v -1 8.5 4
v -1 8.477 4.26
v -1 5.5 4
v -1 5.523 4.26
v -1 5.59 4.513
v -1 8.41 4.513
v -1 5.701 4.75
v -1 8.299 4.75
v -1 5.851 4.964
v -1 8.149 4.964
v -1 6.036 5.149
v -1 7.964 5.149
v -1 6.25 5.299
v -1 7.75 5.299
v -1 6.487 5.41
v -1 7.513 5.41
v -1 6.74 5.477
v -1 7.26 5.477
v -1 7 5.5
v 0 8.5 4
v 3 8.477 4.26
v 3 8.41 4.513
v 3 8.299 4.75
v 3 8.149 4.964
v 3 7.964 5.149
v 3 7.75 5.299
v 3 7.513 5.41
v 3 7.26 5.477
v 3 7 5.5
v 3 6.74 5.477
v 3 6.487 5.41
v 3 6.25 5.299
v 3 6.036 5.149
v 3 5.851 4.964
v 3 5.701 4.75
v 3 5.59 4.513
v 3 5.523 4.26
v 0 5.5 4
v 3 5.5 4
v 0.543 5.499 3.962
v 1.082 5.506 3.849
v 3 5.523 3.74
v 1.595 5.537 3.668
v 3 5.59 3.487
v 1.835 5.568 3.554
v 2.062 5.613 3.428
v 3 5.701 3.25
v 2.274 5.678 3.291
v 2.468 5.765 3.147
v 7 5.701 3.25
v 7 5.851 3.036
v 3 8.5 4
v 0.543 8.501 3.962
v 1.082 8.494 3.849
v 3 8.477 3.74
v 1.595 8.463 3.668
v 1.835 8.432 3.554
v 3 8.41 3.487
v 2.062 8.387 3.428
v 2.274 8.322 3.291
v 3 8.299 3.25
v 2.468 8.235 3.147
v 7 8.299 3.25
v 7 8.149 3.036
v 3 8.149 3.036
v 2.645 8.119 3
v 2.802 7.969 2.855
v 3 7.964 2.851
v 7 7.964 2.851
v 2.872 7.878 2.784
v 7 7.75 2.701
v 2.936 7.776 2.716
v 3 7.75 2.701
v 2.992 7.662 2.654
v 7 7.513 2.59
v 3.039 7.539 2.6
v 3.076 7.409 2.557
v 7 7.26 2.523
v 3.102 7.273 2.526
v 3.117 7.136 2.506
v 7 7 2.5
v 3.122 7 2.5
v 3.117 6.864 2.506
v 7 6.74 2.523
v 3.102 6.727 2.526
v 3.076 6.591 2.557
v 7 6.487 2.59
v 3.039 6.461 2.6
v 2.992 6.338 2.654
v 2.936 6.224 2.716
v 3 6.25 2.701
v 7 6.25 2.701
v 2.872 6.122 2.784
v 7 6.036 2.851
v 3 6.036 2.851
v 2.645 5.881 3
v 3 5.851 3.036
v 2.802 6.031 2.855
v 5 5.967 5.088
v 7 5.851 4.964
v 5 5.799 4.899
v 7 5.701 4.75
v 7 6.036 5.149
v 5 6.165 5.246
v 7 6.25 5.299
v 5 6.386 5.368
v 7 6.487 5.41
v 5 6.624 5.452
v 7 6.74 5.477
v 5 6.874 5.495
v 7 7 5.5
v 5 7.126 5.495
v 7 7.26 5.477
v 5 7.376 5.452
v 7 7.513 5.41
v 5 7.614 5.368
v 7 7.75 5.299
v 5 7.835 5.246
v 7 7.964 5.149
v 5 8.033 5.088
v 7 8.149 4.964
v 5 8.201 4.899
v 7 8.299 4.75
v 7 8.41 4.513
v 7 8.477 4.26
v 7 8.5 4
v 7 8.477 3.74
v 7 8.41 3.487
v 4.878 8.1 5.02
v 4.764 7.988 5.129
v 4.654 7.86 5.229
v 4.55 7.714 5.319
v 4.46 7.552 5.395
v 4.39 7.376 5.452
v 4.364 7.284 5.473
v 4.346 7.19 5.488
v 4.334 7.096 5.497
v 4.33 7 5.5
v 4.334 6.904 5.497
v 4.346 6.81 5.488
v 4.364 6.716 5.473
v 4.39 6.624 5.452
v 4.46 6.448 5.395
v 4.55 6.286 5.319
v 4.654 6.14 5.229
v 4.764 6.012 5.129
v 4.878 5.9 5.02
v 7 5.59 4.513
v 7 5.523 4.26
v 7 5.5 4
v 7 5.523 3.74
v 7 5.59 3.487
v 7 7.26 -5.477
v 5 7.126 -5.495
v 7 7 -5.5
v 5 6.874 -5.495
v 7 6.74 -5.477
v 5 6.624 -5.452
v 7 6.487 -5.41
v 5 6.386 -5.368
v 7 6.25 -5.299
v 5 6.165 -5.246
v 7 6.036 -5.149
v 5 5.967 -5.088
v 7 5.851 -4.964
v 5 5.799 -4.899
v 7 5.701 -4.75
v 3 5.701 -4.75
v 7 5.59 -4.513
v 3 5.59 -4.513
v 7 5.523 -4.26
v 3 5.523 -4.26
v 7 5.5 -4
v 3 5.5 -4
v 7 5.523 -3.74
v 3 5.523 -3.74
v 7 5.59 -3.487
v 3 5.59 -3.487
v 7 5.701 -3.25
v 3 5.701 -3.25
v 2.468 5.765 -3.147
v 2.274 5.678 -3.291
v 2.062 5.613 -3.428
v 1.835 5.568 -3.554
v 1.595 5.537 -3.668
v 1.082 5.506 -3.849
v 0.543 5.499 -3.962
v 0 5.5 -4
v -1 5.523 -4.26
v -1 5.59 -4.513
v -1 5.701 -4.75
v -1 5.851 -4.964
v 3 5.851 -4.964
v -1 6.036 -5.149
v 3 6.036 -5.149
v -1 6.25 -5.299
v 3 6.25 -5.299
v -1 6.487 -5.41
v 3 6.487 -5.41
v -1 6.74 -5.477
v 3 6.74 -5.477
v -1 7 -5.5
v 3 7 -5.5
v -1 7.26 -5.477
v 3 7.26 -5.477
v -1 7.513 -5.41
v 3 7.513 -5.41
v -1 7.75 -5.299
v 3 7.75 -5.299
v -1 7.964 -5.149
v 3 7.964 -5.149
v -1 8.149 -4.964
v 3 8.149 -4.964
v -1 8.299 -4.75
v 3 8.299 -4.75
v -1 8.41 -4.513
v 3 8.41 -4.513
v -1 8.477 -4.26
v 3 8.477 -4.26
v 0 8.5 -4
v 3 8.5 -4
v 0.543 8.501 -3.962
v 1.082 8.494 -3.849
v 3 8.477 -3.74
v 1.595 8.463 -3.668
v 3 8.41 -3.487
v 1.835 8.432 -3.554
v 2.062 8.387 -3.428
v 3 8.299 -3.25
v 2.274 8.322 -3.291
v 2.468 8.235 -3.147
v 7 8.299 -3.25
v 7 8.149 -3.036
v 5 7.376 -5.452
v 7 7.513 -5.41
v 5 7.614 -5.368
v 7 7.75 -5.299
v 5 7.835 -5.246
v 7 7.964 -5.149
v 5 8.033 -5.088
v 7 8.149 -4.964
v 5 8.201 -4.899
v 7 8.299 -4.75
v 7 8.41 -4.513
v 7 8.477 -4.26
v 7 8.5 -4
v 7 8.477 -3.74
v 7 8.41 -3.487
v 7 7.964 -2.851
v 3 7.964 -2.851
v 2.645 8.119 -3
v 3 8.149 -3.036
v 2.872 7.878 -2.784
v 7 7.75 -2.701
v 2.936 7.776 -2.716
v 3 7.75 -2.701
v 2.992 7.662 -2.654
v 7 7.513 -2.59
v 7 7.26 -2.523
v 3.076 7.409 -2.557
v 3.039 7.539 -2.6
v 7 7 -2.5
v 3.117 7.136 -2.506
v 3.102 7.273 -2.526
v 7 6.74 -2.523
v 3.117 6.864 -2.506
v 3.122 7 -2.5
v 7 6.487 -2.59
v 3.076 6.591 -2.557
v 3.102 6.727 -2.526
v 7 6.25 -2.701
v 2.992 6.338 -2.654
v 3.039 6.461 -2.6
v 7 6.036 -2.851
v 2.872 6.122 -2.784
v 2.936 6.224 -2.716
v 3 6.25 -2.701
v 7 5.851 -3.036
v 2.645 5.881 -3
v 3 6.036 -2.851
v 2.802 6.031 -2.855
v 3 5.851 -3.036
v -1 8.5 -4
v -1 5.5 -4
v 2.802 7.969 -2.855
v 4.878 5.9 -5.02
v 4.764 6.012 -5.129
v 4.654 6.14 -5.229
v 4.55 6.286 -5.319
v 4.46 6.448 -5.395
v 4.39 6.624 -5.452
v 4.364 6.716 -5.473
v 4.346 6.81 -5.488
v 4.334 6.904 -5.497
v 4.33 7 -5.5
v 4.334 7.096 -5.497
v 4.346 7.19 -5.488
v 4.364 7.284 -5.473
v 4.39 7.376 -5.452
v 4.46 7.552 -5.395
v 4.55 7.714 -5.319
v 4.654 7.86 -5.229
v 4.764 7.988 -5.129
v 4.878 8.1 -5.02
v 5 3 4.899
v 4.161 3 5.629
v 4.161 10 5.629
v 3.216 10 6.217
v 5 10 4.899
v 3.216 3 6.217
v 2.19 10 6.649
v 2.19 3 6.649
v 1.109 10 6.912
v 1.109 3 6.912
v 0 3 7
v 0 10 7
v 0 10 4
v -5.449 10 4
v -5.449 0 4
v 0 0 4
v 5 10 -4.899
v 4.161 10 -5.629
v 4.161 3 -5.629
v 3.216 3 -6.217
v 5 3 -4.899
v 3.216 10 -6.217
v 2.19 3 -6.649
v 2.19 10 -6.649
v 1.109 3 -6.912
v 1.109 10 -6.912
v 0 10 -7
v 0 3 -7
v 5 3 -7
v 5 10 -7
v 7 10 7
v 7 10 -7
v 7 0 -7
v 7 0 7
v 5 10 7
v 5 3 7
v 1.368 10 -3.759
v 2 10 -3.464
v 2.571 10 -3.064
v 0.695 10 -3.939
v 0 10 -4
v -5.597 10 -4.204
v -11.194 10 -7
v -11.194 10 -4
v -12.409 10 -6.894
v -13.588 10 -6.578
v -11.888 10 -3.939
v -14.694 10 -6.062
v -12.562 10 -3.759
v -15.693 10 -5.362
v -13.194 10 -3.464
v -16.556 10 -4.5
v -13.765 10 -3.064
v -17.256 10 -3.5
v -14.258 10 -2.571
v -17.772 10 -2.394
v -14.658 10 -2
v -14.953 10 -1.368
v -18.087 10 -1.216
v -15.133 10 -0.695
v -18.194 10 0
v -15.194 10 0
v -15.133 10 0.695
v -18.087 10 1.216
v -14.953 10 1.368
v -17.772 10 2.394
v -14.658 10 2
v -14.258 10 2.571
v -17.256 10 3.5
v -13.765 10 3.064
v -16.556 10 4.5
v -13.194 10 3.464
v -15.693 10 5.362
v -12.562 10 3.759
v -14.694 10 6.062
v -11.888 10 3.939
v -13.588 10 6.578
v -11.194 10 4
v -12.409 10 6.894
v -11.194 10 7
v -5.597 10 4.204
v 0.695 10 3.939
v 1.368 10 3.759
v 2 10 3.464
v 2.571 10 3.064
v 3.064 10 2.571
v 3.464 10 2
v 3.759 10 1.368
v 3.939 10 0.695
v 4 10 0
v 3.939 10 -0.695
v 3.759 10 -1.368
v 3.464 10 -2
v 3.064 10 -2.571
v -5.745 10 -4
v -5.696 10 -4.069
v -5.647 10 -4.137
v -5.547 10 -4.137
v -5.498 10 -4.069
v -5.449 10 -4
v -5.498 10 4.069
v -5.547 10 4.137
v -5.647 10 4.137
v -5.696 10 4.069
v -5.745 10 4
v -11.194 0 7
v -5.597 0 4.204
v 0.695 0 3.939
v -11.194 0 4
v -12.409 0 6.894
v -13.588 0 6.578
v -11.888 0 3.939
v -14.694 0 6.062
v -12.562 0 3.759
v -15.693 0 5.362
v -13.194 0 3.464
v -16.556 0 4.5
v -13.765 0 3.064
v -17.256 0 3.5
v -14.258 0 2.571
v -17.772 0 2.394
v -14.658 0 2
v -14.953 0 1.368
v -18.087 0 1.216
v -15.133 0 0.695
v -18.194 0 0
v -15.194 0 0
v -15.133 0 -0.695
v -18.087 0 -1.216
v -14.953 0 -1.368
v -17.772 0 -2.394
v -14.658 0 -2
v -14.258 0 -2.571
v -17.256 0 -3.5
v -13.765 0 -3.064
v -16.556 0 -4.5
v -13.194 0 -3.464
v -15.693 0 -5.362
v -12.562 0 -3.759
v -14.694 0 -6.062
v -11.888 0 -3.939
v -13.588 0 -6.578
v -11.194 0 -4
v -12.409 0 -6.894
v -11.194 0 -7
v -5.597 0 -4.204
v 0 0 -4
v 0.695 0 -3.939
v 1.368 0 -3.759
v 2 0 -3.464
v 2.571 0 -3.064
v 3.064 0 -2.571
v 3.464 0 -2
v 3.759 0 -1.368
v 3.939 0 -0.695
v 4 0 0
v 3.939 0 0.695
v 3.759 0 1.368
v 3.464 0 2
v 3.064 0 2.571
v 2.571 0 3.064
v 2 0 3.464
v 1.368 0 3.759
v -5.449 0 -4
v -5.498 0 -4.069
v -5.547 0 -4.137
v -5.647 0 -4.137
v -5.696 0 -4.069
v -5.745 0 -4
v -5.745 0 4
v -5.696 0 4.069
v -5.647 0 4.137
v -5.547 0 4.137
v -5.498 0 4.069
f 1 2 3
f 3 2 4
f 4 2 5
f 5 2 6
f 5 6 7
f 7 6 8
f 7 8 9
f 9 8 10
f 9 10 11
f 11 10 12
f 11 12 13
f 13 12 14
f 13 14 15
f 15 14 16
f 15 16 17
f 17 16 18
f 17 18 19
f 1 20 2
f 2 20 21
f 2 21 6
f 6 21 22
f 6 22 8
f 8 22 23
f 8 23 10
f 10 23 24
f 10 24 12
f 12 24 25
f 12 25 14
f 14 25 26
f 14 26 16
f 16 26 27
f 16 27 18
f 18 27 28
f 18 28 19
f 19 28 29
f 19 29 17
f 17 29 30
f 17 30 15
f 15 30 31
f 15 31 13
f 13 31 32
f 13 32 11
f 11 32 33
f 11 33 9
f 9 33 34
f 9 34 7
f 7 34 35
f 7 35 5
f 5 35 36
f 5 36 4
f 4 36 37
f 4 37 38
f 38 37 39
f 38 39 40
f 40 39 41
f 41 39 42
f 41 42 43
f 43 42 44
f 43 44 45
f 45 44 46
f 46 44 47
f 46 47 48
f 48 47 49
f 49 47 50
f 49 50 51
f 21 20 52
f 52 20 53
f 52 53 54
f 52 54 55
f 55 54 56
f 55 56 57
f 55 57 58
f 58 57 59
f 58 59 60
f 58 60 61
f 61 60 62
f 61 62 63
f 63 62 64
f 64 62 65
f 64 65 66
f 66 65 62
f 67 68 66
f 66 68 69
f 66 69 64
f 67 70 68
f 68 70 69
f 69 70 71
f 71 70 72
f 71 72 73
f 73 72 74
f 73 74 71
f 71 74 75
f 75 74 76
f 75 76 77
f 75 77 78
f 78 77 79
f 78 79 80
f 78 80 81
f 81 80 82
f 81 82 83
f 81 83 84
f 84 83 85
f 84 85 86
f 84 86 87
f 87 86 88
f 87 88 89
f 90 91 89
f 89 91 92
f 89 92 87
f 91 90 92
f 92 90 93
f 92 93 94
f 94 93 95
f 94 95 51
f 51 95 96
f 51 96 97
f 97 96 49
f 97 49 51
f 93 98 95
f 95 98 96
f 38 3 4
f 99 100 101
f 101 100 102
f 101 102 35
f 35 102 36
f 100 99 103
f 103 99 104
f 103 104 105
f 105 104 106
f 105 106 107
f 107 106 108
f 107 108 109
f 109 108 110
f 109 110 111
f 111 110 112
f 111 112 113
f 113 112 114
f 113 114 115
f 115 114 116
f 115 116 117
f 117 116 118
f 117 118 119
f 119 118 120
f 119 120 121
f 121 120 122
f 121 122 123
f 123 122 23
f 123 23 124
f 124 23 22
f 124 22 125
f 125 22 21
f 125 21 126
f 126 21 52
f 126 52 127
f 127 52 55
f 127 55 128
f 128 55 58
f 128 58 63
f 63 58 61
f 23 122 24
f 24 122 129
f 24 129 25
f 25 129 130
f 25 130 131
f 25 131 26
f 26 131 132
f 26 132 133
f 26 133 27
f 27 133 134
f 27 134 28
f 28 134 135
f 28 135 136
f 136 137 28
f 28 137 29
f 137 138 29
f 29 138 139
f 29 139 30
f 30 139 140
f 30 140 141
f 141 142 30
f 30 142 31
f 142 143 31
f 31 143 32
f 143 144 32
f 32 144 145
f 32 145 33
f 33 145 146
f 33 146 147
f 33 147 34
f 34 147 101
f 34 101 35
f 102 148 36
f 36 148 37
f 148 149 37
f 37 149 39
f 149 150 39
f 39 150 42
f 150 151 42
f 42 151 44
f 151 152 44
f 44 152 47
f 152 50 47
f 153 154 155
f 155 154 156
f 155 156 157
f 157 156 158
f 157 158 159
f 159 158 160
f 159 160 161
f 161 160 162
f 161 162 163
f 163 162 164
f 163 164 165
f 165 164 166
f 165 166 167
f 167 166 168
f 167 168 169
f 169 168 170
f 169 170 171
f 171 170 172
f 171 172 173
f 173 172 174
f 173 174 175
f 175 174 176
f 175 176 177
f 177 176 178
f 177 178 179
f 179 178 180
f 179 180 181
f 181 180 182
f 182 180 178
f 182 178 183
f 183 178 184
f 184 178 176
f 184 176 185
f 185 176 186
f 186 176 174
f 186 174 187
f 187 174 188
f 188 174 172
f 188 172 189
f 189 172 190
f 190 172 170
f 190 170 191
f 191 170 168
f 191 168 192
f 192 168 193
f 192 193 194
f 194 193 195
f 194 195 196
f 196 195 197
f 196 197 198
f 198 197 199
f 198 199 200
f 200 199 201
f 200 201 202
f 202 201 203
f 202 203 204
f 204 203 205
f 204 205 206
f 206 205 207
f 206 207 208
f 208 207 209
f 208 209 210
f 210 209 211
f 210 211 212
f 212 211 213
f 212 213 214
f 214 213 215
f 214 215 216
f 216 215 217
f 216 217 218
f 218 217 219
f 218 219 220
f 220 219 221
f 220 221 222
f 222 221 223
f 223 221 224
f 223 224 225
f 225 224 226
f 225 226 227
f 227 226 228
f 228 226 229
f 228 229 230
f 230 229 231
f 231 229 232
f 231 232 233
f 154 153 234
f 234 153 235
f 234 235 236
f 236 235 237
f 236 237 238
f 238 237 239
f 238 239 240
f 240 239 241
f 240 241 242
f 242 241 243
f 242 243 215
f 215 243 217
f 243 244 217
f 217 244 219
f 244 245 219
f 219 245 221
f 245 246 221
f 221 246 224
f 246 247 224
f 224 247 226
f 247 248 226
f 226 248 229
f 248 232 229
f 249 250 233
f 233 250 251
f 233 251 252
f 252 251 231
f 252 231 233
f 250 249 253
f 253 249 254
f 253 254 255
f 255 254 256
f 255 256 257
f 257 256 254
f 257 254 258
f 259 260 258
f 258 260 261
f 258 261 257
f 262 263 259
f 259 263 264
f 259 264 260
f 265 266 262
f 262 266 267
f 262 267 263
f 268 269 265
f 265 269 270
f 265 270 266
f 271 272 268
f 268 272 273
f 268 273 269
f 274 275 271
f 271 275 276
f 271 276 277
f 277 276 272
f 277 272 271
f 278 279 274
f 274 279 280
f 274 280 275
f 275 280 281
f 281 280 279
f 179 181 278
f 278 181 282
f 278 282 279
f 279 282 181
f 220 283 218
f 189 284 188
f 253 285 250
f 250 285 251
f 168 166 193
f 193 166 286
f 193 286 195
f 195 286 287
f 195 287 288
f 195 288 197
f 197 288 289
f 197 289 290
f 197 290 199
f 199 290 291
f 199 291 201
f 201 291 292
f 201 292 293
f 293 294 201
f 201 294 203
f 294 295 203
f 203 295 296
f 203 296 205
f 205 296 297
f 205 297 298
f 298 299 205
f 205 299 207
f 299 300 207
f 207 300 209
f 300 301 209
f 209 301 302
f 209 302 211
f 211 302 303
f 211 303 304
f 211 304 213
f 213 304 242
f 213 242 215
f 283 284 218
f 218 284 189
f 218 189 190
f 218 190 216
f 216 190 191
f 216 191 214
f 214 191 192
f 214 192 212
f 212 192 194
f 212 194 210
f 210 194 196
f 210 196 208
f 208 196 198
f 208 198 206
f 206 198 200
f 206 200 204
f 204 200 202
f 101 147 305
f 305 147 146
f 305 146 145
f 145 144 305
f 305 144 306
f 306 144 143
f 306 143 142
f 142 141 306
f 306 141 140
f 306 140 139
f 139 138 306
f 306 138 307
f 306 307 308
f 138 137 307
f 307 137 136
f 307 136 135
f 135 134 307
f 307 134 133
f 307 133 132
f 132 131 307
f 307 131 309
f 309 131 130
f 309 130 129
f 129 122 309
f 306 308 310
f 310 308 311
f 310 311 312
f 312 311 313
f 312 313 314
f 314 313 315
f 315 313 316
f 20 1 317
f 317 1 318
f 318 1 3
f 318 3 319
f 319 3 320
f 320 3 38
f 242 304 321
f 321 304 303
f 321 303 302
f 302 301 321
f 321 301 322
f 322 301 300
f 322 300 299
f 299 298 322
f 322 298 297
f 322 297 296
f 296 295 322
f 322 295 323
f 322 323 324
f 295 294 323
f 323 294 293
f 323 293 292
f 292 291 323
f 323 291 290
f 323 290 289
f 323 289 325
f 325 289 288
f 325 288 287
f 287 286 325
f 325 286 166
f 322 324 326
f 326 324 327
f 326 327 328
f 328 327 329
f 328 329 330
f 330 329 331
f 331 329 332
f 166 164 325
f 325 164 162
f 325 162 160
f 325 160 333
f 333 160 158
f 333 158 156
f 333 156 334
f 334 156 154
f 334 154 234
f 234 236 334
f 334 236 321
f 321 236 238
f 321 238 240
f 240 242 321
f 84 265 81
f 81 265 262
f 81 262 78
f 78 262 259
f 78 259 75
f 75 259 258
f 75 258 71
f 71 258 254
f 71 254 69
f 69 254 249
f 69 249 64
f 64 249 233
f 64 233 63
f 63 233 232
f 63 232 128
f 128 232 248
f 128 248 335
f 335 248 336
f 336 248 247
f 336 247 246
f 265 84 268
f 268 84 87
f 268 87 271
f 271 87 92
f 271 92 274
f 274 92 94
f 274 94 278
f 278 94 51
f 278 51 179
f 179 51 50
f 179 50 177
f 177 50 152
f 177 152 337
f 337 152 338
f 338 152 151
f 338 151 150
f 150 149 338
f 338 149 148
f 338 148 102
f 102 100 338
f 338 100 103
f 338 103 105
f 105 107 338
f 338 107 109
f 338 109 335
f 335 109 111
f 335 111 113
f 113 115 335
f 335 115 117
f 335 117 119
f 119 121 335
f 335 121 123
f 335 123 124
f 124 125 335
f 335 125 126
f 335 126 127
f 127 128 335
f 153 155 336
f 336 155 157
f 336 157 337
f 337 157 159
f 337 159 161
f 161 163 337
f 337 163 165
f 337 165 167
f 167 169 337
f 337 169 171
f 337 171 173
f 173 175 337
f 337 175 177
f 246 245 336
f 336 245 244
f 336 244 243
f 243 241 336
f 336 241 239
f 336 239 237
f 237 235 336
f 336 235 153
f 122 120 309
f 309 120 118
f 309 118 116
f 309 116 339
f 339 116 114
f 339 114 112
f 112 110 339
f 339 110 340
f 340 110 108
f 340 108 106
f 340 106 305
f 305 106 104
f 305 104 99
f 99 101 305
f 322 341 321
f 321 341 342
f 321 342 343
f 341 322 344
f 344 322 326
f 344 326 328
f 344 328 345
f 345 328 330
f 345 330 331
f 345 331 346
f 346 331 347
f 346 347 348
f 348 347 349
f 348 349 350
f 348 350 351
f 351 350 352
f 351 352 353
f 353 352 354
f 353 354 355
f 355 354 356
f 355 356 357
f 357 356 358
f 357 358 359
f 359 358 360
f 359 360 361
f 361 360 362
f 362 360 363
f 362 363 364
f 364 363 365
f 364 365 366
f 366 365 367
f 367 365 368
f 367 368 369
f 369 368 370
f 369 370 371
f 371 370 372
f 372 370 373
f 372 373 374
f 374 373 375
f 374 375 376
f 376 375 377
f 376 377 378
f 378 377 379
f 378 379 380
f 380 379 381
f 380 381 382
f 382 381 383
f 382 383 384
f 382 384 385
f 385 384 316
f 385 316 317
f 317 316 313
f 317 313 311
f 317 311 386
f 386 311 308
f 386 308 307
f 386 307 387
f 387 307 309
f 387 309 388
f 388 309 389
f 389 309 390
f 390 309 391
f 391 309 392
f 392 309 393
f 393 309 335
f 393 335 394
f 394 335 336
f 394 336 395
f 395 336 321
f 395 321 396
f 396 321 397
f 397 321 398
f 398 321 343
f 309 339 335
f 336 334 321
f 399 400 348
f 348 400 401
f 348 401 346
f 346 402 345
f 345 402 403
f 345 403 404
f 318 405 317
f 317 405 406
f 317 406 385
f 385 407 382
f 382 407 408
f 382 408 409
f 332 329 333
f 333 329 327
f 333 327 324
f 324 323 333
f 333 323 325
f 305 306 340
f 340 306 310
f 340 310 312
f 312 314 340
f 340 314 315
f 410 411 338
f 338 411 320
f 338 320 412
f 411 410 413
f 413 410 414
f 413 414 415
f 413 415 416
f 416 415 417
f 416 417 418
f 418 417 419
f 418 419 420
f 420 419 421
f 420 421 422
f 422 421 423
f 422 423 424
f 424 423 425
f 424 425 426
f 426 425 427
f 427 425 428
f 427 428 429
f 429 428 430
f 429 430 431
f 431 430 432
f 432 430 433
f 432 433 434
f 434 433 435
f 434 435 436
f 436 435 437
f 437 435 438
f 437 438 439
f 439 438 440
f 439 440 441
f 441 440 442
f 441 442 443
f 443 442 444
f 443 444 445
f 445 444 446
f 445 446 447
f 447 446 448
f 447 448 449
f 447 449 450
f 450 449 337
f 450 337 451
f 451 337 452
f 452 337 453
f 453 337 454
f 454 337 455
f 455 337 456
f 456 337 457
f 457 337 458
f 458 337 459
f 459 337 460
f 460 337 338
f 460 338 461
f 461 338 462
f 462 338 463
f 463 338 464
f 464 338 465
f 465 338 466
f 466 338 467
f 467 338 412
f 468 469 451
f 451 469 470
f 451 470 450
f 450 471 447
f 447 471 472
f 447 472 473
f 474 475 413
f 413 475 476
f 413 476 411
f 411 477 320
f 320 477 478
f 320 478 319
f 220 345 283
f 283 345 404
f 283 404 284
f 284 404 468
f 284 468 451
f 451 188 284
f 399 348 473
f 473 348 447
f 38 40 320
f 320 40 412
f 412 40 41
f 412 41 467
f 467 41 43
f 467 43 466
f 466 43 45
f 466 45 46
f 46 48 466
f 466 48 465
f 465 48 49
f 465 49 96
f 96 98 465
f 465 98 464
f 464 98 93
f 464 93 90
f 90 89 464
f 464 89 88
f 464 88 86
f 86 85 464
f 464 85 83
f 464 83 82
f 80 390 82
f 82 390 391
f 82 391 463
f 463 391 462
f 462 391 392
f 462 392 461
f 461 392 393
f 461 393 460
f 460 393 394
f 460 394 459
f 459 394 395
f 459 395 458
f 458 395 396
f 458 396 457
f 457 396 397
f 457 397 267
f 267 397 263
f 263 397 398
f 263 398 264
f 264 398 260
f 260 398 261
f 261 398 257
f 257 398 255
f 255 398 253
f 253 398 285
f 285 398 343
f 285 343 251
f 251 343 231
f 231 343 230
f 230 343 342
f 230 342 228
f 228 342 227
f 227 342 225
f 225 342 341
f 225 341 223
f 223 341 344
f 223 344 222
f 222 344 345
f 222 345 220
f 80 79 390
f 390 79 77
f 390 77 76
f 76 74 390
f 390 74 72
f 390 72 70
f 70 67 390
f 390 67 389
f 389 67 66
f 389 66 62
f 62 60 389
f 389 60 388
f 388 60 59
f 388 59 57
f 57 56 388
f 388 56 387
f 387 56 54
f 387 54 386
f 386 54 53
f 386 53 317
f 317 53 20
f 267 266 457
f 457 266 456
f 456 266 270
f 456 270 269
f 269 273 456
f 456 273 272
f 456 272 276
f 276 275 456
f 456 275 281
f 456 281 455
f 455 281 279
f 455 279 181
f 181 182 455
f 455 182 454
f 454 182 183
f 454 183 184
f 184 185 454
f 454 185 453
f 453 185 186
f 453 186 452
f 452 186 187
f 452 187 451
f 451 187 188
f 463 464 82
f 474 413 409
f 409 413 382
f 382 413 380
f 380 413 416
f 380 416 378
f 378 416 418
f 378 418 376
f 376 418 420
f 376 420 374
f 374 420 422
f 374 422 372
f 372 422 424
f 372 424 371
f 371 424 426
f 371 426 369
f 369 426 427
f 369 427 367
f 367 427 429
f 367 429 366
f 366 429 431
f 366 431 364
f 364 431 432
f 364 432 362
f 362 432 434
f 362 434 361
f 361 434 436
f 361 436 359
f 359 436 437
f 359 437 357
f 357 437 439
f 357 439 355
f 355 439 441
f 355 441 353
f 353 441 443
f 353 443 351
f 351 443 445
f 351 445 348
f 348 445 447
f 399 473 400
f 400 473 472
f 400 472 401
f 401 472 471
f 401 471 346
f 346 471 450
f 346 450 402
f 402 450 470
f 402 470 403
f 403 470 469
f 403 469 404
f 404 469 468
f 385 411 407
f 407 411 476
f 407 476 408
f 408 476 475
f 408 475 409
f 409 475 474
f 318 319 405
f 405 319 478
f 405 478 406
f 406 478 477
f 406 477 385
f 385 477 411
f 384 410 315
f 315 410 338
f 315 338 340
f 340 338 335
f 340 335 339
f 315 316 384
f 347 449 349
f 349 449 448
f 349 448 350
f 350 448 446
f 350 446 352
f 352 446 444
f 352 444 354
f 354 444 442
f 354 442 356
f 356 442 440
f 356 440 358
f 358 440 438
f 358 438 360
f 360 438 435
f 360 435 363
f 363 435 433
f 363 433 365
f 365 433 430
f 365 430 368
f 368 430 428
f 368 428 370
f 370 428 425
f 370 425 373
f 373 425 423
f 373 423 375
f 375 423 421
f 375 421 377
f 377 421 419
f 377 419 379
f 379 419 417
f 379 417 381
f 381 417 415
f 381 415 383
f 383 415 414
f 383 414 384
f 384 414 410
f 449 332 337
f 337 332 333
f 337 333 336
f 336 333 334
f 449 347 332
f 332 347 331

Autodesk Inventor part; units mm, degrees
ref_plane "YZ Plane" through (0, 0, 0) normal (1, 0, 0) x (0, 1, 0)
ref_plane "XZ Plane" through (0, 0, 0) normal (0, 1, 0) x (-1, 0, 0)
ref_plane "XY Plane" through (0, 0, 0) normal (0, 0, 1) x (1, 0, 0)
sketch "Sketch1" plane through (0, 0, 0) normal (0, 1, 0) x (-1, 0, 0)
  arc A0 (0, 4) -> (0, -4) centre (0, 0) ccw
  arc A1 (11.1938, -4) -> (11.1938, 4) centre (11.1938, 0) ccw
  line L0 (11.1938, -4) -> (0, -4)
  line L1 (11.1938, 4) -> (0, 4)
  line L2 (11.1938, -7) -> (0, -7)
  line L3 (0, 7) -> (11.1938, 7)
  arc A2 (5.5969, 4.2041) -> (5.4492, 4) centre (11.1938, 0) ccw
  arc A3 (5.7446, 4) -> (5.5969, 4.2041) centre (0, 0) ccw
  arc A4 (5.4492, -4) -> (5.5969, -4.2041) centre (11.1938, 0) ccw
  arc A5 (11.1938, -7) -> (11.1938, 7) centre (11.1938, 0) ccw
  arc A6 (0, 7) -> (0, -7) centre (0, 0) ccw
  arc A7 (5.5969, -4.2041) -> (5.7446, -4) centre (0, 0) ccw
  dimension "d0" = 8
  dimension "d1" = 8
extrude "Extrusion1" add sketch "Sketch1" along normal blind 10
sketch "Sketch2" plane through (0, 0, 0) normal (0, -1, 0) x (1, 0, 0)
  arc A0 (0, -7) -> (0, 7) centre (0, 0) ccw
  arc A1 (0, -4) -> (0, 4) centre (0, 0) ccw
  line L0 (0, -7) -> (0, -4)
  line L1 (0, 4) -> (0, 7)
  line L2 (0, -7) -> (-11.1938, -7) projected
  line L3 (0, -7) -> (5, -7)
  arc A2 (0, -7) -> (0, 7) centre (0, 0) ccw projected
  line L4 (0, 7) -> (5, 7)
  line L5 (5, 7) -> (5, -7)
  dimension "d6" = 5
extrude "Extrusion2" add sketch "Sketch2" against normal blind 3 contours L0 A1 L1 A0 L5 | A0 L5 L3 | A0 L4 L5
sketch "Sketch3" plane through (5, 0, 7) normal (1, 0, 0) x (0, 0, -1)
  line L0 (14, 10) -> (0, 10) projected
  line L1 (0, 0) -> (14, 0)
  line L2 (14, 0) -> (14, 10)
  line L3 (14, 10) -> (0, 10)
  line L4 (0, 10) -> (0, 0)
  point P0 (7, 0)
extrude "Extrusion3" add sketch "Sketch3" along normal blind 2
sketch "Sketch4" plane through (7, 0, 7) normal (1, 0, 0) x (0, 0, -1)
  circle A0 centre (3, 7) radius 1.5
  circle A1 centre (11, 7) radius 1.5
  line L0 (14, 10) -> (0, 10) projected
  line L1 (0, 10) -> (0, 0) projected
  line L2 (14, 0) -> (14, 10) projected
  point P0 (7, 0)
  dimension "d11" = 3
  dimension "d12" = 3
  dimension "d13" = 3
  dimension "d14" = 3
  dimension "d15" = 3
  dimension "d16" = 3
extrude "Extrusion4" cut sketch "Sketch4" against normal blind 8
sketch "Sketch5" plane through (0, 10, 0) normal (0, 1, 0) x (1, 0, 0)
  point P0 (0, 0)
sketch "Sketch6" plane through (0, 10, 0) normal (0, 1, 0) x (1, 0, 0)
  point P0 (0, 0)
properties part number "bedtiedown3"
